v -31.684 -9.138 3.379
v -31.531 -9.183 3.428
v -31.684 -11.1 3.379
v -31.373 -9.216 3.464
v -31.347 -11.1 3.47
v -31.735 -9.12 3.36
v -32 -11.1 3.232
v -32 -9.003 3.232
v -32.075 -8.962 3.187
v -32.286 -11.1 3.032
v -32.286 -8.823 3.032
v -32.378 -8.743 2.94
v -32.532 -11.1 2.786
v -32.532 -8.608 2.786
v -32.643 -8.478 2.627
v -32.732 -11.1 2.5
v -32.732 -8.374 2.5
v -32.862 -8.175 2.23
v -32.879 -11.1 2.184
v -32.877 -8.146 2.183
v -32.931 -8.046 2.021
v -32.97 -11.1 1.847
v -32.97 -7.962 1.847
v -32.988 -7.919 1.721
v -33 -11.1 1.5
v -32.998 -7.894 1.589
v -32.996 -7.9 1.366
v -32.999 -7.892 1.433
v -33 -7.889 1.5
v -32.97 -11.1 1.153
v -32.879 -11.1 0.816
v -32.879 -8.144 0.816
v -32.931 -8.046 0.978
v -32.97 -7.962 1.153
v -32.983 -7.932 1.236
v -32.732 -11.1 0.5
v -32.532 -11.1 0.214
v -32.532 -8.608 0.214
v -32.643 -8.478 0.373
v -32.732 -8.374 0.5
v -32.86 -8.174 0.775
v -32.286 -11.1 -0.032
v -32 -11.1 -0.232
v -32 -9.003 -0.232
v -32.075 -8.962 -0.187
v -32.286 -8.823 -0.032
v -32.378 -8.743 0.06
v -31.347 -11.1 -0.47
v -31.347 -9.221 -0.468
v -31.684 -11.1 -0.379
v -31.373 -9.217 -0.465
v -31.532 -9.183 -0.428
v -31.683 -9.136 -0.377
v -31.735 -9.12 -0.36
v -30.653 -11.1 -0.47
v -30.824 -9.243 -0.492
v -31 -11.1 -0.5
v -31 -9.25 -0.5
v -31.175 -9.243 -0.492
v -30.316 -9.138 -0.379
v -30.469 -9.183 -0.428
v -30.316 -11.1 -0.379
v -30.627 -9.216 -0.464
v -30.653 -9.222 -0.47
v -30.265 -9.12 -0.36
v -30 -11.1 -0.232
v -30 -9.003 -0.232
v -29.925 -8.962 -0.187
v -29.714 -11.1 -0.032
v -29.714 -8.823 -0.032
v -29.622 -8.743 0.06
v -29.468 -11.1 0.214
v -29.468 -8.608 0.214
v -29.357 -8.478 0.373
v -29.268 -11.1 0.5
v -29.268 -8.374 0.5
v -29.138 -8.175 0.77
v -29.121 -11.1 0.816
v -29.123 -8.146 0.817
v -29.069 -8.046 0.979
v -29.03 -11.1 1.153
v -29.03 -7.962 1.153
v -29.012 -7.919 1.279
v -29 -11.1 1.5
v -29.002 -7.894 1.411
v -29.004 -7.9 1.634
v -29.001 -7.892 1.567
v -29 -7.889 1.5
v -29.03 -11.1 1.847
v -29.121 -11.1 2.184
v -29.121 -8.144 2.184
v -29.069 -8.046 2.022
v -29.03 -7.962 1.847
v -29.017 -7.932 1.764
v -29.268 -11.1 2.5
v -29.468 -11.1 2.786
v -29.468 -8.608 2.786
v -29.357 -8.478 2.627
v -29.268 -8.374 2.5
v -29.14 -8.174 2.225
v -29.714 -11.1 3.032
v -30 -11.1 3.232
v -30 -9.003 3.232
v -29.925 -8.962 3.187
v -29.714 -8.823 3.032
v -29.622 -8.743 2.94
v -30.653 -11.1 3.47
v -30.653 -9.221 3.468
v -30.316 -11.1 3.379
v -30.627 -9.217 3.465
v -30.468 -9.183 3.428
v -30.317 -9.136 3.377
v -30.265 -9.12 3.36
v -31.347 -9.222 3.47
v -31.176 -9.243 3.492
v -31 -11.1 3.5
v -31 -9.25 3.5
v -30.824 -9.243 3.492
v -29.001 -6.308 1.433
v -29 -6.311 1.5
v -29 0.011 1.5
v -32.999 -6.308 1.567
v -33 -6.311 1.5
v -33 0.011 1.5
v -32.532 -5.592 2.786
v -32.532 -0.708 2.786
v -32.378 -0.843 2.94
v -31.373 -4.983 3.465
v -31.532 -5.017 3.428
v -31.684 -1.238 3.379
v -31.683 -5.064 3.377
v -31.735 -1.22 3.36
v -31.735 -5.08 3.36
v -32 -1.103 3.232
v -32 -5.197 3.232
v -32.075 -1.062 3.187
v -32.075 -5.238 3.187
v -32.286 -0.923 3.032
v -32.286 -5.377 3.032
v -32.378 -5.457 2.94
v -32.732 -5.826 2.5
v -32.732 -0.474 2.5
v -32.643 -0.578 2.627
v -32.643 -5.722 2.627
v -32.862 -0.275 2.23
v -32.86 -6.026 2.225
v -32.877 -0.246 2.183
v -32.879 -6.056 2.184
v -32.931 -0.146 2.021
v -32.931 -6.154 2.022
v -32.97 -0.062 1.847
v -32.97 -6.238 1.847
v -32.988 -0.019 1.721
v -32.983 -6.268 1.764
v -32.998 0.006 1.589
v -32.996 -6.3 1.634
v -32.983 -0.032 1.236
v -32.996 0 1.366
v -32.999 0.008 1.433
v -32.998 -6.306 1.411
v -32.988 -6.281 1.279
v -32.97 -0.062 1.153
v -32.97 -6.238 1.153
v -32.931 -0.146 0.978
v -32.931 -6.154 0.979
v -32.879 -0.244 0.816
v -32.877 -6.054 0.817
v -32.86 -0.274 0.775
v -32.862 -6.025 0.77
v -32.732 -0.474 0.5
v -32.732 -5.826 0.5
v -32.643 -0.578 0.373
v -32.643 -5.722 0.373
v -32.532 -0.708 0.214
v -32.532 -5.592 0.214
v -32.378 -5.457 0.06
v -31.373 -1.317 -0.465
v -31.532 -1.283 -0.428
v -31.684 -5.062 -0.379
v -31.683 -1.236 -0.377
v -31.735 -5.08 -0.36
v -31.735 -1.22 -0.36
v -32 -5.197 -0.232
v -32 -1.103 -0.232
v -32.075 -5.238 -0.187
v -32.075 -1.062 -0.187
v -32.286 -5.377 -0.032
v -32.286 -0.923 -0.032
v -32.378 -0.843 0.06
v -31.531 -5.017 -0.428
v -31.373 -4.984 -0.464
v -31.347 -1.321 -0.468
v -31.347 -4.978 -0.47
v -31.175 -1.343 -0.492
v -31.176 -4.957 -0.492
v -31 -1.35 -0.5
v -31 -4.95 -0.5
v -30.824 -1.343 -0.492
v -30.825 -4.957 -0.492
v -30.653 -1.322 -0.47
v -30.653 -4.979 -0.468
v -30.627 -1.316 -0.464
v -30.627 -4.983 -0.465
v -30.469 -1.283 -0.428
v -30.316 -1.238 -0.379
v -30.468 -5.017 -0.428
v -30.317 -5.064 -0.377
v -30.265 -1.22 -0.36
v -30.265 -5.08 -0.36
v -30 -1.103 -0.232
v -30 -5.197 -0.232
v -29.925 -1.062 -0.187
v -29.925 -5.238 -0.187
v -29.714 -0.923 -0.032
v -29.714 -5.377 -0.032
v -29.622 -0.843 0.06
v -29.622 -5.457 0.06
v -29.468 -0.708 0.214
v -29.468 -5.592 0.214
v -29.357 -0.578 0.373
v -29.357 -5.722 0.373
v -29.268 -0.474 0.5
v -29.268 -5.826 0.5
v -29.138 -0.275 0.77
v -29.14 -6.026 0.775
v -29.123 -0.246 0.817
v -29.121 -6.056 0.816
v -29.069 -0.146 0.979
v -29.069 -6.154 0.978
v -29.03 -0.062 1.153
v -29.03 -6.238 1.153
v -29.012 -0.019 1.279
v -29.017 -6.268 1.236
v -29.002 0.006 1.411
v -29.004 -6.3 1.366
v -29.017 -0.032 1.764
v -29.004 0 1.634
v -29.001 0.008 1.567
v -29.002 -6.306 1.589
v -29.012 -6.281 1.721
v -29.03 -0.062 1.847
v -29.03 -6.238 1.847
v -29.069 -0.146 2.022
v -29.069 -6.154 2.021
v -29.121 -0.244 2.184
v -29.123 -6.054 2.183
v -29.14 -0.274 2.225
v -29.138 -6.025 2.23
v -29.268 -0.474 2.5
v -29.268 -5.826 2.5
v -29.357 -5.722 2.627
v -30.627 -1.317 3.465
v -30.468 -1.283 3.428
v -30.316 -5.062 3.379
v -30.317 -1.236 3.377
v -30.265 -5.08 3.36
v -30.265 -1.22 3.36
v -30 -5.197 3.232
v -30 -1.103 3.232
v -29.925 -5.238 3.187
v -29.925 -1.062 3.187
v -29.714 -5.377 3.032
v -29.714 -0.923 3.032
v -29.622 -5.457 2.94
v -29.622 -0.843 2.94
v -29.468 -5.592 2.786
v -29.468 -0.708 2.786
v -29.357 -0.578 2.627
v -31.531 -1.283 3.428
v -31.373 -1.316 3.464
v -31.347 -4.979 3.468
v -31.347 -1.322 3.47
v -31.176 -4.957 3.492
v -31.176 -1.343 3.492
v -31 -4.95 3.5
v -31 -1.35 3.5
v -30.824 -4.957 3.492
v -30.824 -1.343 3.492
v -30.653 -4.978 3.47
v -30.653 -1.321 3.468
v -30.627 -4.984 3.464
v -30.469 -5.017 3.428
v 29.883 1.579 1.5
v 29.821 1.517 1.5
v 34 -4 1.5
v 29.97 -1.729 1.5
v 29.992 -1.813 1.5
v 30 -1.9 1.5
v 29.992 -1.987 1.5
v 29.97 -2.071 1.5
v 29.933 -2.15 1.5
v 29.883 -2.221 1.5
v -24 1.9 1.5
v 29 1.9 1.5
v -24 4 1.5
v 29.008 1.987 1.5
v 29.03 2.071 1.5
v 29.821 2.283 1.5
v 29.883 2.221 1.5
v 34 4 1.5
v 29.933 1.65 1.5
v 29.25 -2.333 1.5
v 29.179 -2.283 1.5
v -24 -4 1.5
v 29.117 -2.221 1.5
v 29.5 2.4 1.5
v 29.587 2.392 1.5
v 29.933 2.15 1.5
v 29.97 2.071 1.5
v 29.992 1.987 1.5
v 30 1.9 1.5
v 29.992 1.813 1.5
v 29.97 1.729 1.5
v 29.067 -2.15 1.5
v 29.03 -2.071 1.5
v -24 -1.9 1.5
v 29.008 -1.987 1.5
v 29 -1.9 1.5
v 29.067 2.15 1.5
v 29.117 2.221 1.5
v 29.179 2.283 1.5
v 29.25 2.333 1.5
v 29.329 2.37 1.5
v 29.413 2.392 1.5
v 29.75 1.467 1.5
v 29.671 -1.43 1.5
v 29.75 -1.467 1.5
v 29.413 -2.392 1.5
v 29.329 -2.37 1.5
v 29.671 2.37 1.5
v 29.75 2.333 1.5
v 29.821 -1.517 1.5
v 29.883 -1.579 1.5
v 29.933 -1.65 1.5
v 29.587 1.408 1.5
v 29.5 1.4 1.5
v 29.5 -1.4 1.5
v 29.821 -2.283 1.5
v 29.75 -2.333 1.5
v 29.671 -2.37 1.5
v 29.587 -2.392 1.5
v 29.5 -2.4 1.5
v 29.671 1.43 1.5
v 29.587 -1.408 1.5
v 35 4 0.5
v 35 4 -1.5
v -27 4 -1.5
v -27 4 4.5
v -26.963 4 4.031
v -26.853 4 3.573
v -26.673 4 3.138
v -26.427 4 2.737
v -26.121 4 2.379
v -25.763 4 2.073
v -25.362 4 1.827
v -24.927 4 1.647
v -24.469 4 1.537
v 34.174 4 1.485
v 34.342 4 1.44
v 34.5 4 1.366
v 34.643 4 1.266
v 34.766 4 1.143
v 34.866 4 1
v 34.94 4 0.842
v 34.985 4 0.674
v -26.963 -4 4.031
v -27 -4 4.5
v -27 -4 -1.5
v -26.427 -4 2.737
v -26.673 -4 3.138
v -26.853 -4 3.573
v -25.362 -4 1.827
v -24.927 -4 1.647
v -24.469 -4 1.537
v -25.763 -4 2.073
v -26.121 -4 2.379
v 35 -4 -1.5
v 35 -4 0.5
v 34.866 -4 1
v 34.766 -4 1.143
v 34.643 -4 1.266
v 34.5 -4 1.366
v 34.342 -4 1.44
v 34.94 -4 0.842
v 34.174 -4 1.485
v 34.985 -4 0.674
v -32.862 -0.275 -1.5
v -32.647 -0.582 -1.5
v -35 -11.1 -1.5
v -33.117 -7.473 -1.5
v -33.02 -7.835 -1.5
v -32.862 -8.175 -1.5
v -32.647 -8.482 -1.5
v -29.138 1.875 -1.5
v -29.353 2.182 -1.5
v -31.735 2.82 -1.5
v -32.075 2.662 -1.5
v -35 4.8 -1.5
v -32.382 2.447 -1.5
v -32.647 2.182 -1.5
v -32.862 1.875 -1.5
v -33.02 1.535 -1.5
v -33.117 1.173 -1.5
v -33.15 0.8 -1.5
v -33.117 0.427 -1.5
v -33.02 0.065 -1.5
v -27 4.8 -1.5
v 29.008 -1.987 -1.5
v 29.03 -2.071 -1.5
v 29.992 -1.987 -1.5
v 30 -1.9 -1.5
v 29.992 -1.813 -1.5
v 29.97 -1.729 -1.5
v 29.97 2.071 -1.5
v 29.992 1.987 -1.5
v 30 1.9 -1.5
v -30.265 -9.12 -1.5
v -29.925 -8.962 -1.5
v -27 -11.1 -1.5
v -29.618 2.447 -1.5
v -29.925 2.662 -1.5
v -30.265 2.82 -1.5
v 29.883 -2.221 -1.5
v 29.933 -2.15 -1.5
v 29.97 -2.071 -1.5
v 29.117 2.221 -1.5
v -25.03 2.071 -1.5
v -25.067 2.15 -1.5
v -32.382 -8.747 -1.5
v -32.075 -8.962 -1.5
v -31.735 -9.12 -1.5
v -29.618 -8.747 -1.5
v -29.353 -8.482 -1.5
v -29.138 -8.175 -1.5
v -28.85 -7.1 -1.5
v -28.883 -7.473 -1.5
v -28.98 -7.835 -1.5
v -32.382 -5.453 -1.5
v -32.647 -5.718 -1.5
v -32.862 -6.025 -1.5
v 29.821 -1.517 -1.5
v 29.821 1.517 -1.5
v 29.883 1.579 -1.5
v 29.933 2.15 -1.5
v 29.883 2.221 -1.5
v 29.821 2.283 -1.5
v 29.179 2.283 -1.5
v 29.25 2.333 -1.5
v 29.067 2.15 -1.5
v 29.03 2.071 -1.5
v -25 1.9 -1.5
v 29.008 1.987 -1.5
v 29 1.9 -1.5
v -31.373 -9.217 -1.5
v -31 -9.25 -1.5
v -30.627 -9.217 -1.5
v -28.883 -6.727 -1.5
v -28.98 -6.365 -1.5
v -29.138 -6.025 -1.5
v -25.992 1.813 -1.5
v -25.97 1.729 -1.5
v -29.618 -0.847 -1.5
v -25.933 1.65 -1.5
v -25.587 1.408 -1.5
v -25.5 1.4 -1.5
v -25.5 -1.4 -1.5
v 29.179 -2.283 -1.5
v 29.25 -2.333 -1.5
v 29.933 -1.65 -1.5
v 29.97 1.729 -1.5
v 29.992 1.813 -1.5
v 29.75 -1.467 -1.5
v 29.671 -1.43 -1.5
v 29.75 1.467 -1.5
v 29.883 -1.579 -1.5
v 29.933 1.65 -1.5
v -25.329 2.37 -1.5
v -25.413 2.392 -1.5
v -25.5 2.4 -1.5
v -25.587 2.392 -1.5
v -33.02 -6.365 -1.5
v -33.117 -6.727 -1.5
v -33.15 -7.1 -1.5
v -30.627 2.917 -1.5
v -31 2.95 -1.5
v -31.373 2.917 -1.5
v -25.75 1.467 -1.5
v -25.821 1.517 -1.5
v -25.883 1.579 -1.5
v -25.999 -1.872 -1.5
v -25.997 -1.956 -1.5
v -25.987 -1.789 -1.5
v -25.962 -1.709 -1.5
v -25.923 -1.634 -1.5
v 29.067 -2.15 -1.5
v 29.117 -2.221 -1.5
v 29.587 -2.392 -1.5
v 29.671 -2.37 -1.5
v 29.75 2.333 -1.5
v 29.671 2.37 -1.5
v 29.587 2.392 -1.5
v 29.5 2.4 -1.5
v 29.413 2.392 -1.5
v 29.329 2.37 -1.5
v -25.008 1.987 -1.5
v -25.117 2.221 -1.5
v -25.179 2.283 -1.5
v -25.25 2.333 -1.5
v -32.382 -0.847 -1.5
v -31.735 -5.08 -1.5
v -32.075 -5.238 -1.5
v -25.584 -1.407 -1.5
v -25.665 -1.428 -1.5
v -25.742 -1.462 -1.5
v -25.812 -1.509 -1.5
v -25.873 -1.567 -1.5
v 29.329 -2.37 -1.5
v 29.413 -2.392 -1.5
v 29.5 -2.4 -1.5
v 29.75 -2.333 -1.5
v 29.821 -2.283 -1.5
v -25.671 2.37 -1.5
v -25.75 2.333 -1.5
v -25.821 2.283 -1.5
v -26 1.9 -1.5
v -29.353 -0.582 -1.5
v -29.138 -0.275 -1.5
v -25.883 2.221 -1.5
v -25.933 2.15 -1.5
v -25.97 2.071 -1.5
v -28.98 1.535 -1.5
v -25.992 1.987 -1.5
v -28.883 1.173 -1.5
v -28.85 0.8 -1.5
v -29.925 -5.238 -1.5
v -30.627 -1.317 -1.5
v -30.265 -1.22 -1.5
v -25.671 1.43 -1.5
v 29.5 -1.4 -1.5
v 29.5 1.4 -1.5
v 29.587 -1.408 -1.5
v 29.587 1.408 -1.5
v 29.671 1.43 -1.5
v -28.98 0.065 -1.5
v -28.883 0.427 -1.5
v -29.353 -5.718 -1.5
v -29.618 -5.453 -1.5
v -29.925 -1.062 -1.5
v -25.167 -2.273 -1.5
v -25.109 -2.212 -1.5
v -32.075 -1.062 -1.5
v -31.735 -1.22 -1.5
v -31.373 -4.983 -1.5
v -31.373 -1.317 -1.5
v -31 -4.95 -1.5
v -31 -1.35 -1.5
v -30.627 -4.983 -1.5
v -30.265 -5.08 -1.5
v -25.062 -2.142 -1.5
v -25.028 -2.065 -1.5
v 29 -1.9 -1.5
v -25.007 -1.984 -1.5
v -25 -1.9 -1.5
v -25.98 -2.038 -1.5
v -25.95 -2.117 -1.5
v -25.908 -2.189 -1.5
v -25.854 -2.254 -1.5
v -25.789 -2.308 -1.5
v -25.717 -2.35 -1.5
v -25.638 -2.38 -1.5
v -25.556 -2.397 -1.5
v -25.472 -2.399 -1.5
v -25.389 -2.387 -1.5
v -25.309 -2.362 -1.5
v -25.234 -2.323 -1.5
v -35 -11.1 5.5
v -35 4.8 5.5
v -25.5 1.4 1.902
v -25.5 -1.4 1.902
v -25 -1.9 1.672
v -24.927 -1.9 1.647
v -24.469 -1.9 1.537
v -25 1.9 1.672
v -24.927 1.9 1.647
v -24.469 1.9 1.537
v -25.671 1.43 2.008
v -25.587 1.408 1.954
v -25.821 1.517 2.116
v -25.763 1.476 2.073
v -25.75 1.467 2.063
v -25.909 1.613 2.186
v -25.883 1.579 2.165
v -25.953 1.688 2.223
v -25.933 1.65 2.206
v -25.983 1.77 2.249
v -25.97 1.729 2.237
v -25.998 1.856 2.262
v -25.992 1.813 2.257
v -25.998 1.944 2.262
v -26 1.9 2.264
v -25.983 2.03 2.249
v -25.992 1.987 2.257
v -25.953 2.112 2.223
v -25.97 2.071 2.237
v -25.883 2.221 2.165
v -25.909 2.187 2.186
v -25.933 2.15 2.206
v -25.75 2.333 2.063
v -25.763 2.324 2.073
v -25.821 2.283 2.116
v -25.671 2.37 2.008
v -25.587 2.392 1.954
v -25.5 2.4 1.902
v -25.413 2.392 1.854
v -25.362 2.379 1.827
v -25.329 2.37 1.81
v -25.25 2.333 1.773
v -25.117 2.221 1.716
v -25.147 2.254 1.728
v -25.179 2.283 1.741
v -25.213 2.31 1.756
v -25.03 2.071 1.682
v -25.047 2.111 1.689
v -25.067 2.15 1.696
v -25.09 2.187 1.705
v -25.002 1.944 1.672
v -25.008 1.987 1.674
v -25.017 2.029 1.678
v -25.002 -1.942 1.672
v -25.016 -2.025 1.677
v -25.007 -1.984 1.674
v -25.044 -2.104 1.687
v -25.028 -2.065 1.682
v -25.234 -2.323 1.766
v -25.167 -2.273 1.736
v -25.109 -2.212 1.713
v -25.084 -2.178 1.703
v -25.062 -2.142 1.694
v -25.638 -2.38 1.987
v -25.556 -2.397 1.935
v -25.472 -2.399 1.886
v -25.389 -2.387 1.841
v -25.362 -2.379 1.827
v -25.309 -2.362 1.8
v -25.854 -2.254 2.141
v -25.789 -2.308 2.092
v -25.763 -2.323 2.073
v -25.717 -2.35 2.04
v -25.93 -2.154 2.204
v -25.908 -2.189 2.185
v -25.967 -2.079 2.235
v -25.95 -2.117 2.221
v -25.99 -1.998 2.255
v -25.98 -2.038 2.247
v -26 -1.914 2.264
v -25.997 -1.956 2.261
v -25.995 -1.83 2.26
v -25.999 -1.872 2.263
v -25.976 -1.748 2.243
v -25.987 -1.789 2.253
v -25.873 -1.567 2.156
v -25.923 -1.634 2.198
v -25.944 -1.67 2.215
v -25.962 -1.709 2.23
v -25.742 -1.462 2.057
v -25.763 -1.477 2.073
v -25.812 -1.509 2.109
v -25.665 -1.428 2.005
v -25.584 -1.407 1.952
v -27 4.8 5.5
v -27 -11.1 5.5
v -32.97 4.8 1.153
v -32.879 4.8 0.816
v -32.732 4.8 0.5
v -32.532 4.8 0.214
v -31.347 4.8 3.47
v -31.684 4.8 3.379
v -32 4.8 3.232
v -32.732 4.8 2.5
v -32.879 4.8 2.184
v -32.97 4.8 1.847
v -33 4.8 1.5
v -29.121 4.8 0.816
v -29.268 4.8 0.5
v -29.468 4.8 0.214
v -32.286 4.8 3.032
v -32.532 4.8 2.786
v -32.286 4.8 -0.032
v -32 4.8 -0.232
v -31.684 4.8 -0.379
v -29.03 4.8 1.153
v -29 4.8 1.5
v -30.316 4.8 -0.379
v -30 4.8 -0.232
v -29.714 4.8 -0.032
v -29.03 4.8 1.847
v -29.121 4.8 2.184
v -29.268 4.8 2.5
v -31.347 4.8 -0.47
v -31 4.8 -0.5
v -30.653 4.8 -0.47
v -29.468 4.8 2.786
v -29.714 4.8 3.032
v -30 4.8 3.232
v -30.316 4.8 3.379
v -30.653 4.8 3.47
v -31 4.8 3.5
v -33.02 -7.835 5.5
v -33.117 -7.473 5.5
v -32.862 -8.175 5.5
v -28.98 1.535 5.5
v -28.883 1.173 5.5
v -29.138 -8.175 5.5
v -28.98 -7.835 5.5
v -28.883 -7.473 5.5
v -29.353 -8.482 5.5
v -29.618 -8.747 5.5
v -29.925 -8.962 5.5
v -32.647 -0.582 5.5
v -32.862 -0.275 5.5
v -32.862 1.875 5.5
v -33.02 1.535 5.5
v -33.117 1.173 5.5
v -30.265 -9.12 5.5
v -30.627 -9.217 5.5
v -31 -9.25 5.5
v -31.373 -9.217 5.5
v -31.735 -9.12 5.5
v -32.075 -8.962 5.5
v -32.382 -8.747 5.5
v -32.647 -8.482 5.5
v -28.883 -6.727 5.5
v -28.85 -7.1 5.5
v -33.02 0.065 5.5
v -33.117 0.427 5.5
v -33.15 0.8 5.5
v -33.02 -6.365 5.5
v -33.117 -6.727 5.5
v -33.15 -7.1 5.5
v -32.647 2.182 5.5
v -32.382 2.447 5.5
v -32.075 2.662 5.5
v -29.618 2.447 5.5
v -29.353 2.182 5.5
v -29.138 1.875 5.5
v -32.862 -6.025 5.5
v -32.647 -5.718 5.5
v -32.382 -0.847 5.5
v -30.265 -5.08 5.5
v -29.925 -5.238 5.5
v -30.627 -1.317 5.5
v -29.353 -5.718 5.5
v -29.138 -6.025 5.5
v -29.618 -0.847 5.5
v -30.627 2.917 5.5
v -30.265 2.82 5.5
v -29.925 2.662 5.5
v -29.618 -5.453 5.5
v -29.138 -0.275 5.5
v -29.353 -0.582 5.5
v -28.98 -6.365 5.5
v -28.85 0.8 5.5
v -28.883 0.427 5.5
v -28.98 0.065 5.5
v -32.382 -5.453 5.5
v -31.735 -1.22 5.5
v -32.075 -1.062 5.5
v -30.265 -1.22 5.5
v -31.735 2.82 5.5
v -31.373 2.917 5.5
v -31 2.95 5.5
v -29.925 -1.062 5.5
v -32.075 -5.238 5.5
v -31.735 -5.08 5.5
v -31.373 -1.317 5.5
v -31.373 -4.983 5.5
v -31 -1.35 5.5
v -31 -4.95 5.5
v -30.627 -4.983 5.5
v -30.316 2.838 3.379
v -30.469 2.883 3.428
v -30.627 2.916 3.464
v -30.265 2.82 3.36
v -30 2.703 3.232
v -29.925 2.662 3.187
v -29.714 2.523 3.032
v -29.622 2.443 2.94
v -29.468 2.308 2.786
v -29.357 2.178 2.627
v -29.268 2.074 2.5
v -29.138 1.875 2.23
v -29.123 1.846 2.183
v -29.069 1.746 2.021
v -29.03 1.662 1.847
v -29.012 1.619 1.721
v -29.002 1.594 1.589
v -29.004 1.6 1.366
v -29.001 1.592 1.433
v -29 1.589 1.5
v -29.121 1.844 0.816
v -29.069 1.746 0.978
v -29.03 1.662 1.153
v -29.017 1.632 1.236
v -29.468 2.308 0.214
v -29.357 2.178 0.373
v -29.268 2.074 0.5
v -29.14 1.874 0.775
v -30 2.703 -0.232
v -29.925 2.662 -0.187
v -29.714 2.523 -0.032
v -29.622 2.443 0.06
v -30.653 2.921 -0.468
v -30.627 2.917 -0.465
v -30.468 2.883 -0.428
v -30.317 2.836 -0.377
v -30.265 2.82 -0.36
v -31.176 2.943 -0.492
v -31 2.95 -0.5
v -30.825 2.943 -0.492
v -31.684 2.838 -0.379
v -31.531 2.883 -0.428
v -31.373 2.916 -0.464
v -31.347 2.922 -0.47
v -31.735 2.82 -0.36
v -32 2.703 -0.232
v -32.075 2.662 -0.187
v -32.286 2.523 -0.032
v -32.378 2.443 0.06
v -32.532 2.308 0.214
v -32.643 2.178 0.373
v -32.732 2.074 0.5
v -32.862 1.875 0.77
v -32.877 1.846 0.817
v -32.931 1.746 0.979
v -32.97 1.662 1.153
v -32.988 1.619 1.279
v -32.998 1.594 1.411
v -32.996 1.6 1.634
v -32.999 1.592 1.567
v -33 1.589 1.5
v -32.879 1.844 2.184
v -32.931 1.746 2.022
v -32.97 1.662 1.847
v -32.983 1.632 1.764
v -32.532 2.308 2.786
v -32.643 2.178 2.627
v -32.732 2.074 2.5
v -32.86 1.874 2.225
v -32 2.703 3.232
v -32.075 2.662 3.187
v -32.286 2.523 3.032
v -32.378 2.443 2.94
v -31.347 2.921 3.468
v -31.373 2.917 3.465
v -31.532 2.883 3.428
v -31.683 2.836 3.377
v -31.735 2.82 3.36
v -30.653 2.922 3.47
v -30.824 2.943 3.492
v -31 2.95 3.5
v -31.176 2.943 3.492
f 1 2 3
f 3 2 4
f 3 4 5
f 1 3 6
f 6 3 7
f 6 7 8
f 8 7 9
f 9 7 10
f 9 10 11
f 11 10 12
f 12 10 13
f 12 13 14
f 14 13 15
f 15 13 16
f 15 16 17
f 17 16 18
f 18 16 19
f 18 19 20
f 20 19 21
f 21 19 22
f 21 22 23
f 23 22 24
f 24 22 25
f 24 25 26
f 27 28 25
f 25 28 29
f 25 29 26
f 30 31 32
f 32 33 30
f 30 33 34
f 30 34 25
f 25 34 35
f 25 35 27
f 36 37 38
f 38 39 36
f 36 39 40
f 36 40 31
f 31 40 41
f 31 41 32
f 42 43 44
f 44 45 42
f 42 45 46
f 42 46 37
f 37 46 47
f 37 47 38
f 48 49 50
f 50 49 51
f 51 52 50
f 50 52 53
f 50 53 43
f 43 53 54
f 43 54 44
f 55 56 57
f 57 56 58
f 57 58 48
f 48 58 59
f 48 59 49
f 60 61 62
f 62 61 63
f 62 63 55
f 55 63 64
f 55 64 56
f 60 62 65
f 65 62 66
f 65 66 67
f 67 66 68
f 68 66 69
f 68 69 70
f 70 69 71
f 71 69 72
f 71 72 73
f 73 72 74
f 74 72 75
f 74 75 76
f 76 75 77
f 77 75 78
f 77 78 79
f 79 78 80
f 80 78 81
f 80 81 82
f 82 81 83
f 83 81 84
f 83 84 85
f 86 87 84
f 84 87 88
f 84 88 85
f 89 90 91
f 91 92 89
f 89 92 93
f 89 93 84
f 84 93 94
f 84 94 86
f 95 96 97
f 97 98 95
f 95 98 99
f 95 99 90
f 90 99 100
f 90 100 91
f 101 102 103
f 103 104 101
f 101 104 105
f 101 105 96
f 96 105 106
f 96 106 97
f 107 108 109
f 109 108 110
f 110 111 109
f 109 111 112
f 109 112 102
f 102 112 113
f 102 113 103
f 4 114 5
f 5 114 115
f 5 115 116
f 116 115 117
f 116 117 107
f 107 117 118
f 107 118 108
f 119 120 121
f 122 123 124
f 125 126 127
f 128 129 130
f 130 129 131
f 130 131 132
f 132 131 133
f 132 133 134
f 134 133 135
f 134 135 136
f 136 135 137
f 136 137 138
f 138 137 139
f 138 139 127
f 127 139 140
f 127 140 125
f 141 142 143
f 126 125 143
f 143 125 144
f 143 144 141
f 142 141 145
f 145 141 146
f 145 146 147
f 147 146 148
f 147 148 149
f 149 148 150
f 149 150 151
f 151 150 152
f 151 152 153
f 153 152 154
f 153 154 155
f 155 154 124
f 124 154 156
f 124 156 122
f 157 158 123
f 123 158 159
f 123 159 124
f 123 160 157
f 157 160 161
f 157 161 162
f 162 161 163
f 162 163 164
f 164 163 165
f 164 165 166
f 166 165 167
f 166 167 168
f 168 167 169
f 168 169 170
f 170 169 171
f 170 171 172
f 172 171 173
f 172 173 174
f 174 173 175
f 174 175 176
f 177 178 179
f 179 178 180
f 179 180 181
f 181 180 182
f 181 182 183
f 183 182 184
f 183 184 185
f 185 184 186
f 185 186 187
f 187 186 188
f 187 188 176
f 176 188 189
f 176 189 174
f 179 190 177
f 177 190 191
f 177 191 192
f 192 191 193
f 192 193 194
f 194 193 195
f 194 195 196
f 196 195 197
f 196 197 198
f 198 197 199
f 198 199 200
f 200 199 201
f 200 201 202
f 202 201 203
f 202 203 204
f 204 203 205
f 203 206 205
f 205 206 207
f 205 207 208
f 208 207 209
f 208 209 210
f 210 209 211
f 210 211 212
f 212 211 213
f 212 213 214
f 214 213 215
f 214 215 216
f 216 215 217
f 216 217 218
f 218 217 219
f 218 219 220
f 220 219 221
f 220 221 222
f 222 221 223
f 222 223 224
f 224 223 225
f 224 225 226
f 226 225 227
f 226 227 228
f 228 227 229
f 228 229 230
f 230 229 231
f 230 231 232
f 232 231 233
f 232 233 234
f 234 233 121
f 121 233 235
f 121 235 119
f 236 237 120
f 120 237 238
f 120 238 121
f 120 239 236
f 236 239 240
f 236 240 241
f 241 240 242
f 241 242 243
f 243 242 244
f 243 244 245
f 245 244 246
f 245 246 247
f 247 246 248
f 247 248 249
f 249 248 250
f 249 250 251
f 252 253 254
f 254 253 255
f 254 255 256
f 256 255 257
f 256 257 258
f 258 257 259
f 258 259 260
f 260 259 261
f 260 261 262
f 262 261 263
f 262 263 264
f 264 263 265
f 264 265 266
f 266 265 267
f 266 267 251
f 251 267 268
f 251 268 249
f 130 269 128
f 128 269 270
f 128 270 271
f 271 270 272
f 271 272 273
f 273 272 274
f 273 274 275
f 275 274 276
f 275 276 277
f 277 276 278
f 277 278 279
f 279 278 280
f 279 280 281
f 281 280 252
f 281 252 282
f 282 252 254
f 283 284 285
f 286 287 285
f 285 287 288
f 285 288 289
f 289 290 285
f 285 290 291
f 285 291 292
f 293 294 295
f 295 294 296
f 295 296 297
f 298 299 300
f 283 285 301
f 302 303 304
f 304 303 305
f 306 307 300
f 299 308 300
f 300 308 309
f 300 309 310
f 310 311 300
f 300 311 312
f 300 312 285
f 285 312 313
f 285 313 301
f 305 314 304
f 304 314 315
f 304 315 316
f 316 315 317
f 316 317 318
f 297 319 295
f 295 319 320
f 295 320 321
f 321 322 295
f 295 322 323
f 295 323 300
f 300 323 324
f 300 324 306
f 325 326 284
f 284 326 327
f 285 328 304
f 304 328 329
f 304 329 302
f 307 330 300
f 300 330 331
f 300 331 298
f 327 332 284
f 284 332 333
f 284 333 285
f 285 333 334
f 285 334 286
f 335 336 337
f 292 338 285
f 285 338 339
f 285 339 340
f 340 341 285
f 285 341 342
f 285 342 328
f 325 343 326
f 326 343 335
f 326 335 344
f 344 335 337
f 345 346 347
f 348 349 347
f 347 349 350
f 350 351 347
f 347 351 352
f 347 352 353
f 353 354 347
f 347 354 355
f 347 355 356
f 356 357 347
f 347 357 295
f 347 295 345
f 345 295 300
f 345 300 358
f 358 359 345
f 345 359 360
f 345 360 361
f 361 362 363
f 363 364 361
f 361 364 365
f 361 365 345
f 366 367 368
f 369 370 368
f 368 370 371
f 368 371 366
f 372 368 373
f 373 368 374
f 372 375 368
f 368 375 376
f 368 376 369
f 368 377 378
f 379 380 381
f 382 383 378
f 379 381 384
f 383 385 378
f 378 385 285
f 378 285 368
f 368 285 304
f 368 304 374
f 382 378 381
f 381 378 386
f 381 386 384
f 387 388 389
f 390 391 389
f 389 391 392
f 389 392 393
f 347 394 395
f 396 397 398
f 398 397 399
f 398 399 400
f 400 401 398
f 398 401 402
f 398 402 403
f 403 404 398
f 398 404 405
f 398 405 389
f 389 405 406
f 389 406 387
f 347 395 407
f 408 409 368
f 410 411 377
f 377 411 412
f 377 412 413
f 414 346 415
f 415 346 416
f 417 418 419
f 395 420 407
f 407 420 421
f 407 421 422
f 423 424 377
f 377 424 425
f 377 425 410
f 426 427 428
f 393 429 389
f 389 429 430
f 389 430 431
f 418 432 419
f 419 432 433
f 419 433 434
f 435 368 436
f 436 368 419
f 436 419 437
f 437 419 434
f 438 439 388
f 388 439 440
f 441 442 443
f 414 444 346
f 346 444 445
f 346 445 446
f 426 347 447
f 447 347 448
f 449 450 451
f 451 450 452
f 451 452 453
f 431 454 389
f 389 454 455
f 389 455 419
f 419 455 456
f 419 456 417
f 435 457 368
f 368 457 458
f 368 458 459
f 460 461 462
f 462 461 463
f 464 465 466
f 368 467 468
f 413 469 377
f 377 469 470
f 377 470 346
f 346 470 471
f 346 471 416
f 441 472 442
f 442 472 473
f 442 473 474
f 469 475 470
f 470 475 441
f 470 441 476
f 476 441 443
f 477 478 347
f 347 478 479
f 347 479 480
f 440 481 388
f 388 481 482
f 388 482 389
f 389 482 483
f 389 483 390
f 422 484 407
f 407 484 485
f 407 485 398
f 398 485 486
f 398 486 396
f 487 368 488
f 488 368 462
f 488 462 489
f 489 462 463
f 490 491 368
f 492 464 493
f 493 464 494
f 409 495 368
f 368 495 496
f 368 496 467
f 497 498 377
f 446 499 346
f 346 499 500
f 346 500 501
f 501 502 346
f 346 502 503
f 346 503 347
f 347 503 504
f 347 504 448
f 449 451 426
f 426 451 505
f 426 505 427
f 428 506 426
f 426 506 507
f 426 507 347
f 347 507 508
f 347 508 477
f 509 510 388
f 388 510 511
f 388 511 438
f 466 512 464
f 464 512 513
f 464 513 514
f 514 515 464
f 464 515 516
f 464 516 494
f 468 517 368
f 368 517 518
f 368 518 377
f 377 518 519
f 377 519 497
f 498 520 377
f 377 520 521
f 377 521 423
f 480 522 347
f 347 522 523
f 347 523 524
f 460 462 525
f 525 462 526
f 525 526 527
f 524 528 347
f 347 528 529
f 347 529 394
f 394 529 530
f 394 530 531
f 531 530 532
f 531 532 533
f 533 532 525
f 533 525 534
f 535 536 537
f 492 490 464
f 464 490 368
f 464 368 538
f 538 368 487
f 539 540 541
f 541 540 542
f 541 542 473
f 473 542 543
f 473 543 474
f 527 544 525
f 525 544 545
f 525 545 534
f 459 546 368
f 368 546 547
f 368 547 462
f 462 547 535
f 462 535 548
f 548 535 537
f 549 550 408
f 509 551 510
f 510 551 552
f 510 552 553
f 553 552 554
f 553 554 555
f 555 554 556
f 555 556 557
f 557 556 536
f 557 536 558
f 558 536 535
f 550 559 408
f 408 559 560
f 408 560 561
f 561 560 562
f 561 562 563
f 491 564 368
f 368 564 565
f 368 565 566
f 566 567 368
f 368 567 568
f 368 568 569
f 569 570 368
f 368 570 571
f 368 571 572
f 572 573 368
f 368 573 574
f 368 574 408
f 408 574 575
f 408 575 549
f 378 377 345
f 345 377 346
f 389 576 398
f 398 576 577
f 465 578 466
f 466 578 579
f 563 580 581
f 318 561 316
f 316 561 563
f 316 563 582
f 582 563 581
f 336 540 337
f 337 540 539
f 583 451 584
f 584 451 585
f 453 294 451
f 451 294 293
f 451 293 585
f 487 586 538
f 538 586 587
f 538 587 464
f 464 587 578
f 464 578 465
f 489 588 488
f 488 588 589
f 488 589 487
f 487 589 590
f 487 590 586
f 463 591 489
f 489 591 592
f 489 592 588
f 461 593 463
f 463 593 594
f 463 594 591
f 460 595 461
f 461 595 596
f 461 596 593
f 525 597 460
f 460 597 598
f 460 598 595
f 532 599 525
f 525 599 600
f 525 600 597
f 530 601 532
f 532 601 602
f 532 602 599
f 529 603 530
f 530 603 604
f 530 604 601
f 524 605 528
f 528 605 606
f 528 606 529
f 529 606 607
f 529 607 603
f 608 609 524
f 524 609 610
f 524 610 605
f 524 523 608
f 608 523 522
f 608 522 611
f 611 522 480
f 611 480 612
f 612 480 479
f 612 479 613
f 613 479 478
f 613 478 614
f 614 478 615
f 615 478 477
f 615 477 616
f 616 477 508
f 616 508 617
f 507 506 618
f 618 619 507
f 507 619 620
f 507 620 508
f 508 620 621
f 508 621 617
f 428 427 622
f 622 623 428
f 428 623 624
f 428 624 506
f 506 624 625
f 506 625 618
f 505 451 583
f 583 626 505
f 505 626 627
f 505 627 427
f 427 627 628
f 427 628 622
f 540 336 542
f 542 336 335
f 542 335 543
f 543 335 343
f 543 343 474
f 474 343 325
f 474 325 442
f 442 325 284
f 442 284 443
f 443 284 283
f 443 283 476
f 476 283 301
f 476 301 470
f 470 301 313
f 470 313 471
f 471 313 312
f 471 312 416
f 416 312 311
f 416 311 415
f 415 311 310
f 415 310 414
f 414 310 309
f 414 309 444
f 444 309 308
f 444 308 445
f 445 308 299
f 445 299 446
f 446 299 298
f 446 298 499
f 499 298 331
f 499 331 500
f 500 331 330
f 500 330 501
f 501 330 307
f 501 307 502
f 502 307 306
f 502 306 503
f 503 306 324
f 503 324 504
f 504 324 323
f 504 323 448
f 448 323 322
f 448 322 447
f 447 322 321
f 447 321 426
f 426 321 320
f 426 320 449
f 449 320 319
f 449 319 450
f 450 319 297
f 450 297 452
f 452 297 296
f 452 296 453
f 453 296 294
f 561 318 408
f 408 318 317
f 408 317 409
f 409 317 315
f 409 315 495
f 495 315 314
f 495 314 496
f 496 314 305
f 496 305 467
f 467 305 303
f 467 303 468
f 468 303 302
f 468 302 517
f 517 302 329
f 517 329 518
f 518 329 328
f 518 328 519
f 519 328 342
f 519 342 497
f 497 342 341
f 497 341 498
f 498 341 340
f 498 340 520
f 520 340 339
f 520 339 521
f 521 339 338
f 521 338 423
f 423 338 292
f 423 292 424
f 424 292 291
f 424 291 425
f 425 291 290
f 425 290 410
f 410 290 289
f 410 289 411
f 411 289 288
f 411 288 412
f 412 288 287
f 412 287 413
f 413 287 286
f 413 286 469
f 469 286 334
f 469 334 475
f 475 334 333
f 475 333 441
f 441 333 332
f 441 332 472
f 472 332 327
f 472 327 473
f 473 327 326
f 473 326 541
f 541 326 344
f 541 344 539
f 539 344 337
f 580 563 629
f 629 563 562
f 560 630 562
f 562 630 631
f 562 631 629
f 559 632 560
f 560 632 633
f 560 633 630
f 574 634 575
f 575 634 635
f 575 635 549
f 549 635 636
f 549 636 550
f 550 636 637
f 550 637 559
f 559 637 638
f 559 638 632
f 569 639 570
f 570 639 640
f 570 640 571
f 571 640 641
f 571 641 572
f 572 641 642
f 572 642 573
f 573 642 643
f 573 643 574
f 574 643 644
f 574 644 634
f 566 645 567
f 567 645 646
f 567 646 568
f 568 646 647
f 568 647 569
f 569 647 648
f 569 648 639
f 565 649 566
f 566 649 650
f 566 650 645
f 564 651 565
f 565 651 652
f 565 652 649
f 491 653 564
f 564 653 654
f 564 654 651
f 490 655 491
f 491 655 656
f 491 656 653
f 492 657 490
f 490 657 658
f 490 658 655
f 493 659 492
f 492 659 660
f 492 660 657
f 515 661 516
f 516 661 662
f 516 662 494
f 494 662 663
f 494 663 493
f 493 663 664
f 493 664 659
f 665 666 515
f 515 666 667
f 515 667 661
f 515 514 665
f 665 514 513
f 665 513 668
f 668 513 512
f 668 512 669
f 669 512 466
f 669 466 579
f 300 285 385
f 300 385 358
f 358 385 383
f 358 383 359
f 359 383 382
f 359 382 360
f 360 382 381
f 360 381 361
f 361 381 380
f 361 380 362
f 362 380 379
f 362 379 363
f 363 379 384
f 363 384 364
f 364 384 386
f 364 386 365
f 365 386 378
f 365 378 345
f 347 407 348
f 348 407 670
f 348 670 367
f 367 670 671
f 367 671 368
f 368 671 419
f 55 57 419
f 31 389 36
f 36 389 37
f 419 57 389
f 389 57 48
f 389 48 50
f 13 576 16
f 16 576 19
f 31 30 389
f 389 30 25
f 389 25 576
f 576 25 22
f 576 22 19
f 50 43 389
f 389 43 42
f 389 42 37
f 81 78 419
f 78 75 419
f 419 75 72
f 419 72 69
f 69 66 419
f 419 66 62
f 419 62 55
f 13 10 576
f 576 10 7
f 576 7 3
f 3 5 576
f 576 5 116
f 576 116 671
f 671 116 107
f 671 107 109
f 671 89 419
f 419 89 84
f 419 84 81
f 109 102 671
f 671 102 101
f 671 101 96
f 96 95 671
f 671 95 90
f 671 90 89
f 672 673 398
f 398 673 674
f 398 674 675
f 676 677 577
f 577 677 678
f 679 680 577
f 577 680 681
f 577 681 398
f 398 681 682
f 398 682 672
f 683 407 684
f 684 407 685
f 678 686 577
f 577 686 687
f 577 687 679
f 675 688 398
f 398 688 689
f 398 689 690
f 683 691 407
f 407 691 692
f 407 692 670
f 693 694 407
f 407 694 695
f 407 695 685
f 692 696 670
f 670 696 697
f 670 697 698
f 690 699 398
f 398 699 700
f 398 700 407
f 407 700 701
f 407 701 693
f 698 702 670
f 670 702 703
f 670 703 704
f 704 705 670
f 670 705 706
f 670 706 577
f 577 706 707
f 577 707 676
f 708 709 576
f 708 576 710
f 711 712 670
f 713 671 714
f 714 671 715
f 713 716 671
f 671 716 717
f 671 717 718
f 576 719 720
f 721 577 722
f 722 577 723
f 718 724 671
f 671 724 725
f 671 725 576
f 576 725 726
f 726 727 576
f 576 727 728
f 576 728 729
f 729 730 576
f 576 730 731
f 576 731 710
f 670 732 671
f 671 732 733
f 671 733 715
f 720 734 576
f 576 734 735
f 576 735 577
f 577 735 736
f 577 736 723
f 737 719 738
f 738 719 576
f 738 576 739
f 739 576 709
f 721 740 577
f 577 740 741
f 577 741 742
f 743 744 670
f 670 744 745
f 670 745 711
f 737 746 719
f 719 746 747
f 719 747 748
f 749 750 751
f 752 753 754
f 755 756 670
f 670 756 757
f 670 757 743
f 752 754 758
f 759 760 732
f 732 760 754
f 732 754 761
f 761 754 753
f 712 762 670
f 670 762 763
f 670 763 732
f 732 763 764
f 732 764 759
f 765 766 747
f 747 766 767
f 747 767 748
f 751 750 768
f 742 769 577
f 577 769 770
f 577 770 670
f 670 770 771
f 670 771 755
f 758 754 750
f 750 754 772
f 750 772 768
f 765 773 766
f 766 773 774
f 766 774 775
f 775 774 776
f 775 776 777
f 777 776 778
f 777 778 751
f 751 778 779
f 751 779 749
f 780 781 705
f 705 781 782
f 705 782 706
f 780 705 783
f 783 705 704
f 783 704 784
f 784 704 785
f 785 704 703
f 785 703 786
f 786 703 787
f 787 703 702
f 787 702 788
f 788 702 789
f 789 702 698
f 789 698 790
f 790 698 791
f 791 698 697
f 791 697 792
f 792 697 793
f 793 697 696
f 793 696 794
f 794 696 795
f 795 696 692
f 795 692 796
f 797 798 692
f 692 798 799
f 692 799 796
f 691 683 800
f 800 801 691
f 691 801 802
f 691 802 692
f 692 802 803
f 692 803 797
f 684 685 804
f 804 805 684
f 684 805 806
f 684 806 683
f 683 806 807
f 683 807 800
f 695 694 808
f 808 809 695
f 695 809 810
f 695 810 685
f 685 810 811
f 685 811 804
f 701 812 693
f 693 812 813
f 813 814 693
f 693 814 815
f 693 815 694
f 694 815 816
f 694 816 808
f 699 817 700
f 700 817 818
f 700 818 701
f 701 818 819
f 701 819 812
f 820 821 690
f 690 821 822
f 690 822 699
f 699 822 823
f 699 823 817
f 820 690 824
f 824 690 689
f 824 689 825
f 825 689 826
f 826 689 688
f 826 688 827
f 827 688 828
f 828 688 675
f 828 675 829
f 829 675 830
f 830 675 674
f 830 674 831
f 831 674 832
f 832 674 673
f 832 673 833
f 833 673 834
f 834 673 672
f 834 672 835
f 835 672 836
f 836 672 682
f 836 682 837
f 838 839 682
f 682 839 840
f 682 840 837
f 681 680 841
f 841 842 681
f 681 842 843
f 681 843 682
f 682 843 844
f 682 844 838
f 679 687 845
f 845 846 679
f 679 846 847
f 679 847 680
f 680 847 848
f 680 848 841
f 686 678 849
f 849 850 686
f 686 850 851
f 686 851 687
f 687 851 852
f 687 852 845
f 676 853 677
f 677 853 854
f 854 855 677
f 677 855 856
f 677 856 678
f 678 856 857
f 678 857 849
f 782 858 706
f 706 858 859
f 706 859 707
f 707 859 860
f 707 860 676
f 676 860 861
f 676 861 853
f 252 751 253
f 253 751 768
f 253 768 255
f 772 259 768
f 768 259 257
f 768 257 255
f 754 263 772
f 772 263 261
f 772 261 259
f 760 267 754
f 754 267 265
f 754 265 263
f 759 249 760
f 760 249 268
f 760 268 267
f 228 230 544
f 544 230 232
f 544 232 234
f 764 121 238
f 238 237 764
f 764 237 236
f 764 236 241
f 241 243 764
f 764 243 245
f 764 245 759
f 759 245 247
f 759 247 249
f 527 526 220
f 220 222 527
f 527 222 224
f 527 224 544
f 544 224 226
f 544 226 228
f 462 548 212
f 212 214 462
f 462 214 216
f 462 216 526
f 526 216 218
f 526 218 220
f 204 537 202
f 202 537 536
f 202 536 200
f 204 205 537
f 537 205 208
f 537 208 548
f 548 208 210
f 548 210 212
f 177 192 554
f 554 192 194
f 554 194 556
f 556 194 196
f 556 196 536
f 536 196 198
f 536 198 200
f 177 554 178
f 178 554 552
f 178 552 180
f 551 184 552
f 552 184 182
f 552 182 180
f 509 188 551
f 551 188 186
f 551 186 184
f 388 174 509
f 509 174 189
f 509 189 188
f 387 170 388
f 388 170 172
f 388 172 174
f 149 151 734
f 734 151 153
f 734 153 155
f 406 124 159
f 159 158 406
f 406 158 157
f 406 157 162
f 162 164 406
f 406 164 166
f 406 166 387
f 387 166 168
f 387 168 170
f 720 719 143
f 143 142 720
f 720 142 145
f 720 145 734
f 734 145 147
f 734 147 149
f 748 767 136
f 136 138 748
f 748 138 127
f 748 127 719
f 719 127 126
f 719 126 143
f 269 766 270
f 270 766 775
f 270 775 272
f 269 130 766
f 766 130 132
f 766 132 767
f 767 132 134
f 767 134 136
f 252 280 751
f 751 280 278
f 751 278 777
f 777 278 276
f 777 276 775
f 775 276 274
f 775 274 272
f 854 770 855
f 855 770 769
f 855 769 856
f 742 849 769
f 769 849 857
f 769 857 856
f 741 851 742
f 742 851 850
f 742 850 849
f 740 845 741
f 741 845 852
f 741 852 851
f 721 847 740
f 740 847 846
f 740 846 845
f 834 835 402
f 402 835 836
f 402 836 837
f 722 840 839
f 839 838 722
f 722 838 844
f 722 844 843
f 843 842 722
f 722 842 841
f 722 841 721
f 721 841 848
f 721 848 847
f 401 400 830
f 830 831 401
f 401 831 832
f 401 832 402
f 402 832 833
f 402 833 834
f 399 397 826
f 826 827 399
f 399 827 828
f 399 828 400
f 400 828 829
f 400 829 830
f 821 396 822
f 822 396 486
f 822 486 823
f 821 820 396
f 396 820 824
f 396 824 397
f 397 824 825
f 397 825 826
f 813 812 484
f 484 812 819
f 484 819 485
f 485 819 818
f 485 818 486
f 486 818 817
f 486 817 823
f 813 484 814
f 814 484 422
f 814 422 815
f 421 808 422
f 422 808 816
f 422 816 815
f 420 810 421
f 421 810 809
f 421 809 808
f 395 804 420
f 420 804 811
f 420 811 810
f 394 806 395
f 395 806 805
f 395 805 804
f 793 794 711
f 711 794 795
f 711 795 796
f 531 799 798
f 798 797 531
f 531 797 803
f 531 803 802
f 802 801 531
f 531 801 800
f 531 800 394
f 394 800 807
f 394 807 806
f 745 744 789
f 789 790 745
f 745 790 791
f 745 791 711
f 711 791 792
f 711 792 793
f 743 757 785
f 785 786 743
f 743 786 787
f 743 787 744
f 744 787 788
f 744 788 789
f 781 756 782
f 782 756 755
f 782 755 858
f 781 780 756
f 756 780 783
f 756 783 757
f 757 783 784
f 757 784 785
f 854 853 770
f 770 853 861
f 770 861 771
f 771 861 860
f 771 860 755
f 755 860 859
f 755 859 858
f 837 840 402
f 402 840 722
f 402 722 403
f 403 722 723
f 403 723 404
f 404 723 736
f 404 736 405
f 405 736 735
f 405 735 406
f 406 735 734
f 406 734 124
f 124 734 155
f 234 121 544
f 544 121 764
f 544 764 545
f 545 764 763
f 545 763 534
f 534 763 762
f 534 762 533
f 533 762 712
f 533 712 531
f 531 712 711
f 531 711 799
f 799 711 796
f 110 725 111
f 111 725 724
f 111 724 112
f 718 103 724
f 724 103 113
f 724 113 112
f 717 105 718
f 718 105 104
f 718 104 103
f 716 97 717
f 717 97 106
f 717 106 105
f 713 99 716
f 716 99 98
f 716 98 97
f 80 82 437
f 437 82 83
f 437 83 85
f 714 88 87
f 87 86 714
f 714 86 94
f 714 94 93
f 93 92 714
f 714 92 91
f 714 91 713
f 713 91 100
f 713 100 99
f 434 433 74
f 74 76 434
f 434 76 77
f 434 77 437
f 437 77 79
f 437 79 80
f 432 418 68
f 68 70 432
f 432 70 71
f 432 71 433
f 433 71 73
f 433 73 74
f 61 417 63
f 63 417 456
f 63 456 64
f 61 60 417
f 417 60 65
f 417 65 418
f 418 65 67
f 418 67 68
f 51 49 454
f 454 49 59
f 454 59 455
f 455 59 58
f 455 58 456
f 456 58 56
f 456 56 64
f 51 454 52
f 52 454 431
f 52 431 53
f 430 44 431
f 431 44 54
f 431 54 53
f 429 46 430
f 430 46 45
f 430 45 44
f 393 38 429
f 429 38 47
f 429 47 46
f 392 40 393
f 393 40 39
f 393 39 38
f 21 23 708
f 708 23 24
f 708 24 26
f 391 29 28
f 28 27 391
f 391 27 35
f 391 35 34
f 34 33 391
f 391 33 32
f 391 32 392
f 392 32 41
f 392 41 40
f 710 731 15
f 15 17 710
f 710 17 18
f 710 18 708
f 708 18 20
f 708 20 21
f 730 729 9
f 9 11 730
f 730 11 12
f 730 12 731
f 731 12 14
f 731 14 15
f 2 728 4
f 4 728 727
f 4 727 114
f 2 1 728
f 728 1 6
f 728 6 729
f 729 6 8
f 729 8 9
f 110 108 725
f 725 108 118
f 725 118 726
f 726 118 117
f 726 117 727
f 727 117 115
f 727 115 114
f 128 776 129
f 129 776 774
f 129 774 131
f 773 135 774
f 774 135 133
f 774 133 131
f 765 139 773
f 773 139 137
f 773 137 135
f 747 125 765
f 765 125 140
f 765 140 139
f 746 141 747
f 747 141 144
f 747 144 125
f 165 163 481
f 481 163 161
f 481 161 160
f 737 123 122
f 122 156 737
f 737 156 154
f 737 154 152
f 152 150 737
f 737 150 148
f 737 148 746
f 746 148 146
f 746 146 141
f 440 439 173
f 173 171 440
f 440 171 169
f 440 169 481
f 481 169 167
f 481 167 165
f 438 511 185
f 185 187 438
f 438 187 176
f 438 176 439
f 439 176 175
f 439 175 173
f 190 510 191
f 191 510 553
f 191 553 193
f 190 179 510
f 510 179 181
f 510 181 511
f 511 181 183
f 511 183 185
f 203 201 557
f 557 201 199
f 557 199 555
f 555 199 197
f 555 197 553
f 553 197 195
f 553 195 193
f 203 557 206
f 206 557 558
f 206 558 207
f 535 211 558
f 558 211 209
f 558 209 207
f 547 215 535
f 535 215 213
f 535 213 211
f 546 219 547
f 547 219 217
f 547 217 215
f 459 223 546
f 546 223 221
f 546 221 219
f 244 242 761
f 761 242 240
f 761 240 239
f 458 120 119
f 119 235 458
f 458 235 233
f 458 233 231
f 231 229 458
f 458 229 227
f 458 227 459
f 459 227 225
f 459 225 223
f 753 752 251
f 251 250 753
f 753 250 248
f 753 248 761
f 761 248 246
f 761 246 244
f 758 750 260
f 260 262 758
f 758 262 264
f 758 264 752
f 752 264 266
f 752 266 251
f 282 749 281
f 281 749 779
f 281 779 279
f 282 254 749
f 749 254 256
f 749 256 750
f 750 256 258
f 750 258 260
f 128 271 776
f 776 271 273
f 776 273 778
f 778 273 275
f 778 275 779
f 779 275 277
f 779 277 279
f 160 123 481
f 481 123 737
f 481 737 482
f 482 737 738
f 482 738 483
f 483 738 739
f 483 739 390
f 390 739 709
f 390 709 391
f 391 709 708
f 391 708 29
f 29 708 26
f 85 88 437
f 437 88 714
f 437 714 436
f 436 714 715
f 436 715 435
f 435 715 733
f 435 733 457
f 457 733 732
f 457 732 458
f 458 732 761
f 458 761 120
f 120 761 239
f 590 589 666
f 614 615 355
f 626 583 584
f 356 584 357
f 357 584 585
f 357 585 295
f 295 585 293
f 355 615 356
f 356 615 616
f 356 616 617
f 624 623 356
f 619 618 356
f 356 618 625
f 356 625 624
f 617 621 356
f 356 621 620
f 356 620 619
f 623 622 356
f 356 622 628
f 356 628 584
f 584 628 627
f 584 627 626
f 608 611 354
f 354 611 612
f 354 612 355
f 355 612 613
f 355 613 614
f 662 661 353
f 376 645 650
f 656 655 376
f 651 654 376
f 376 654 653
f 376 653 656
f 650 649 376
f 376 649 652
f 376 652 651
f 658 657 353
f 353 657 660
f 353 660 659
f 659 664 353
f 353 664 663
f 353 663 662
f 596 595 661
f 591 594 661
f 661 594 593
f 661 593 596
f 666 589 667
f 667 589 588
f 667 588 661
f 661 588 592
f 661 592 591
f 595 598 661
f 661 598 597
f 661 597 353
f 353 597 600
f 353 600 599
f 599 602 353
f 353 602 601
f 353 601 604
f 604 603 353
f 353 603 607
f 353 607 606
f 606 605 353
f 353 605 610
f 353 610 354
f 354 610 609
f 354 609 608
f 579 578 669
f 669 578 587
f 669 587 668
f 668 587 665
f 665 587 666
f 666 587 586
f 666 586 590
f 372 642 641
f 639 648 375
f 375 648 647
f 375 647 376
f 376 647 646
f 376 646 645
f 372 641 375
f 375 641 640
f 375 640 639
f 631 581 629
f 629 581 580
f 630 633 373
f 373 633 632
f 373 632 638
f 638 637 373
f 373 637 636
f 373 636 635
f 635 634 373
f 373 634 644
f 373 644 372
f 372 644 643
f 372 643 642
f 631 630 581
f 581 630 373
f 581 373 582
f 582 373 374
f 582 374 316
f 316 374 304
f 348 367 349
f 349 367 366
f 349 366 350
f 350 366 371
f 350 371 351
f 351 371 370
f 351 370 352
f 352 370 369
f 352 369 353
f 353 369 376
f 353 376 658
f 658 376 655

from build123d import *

# Parameters (mm, degrees)
SKIZZE1_W                    = 70
SKIZZE1_H                    = 8
SKIZZE1_W_2                  = 55
SKIZZE1_H_2                  = 3.8
BODY_DEPTH                   = 1.5
LOCHUNGSSKIZZE_R             = 0.5
RAHMENLOCHUNGEN_DEPTH        = 36.355339059
VERRUNDUNG1_R                = 1
SCHNABEL_DEPTH               = 3
SCHNABELAUFSATZSKIZZE_W      = 8
SCHNABELAUFSATZSKIZZE_H      = 15.9
SCHNABELAUFSATZ_DEPTH        = 1
LOCHUNGHORIZONTAL_DEPTH      = 39.83374821
LOCHUNGHORIZONTAL_DEPTH_BACK = 39.83374821
SKIZZE4_R                    = 2
SKIZZE5_R                    = 2.15
LOCHUNG2_DEPTH               = 38.379272331
VERRUNDUNG4_R                = 3


with BuildPart() as part:
    # Skizze1 → Body (new, symmetric)
    with BuildSketch(Plane.XY):
        Rectangle(SKIZZE1_W, SKIZZE1_H)
        with Locations((2, 0)):
            Rectangle(SKIZZE1_W_2, SKIZZE1_H_2, mode=Mode.SUBTRACT)
    extrude(amount=BODY_DEPTH, both=True)

    # Lochungsskizze → RahmenLochungen (cut, through all)
    with BuildSketch(Plane.XY.offset(1.5)):
        with Locations((-25.5, 1.9)):
            Circle(LOCHUNGSSKIZZE_R)
        with Locations((-25.5, -1.9)):
            Circle(LOCHUNGSSKIZZE_R)
        with Locations((29.5, -1.9)):
            Circle(LOCHUNGSSKIZZE_R)
        with Locations((29.5, 1.9)):
            Circle(LOCHUNGSSKIZZE_R)
    extrude(amount=-RAHMENLOCHUNGEN_DEPTH, mode=Mode.SUBTRACT)

    # Verrundung1
    verrundung1_edges = [part.edges().sort_by_distance(p)[0] for p in [
        (35, 0, 1.5),
    ]]
    fillet(verrundung1_edges, radius=VERRUNDUNG1_R)

    # Skizze2 → Schnabel (add, symmetric)
    with BuildSketch(Plane.XY.offset(1.5)):
        Polygon((-35, 0), (-35, -11.1), (-27, -11.1), (-27, 0), (-27, 4.8), (-35, 4.8), align=None)
    extrude(amount=SCHNABEL_DEPTH, both=True)

    # Schnabelaufsatzskizze → Schnabelaufsatz (add)
    with BuildSketch(Plane.XY.offset(4.5)):
        with Locations((-31, -3.15)):
            Rectangle(SCHNABELAUFSATZSKIZZE_W, SCHNABELAUFSATZSKIZZE_H)
    extrude(amount=SCHNABELAUFSATZ_DEPTH)

    # Skizze4 → lochungHorizontal (cut, two sides: drawn at the far end of the back side and taken through both)
    with BuildSketch(Plane(origin=(0, 4.8, 0), x_dir=(1, 0, 0), z_dir=(0, 1, 0)).offset(-LOCHUNGHORIZONTAL_DEPTH_BACK)):
        with Locations(Location((-31, -1.5, 0), (0, 0, 270))):
            Circle(SKIZZE4_R)
    extrude(amount=LOCHUNGHORIZONTAL_DEPTH + LOCHUNGHORIZONTAL_DEPTH_BACK, mode=Mode.SUBTRACT)

    # Skizze5 → lochung2 (cut, through all)
    with BuildSketch(Plane.XY.offset(5.5)):
        with Locations((-31, 0.8)):
            Circle(SKIZZE5_R)
        with Locations((-31, -7.1)):
            Circle(SKIZZE5_R)
    extrude(amount=-LOCHUNG2_DEPTH, mode=Mode.SUBTRACT)

    # Verrundung4
    # the kernel refuses this fillet: 3 mm, written as the material it adds along each edge
    with BuildSketch(Plane(origin=(-27, 4, 1.5), x_dir=(0, 0, 1), z_dir=(0, -1, 0))) as verrundung4_piece_1_section:
        with BuildLine():
            CenterArc((VERRUNDUNG4_R, -VERRUNDUNG4_R), VERRUNDUNG4_R, 90, 90)
            Line((0, -VERRUNDUNG4_R), (0, 0))
            Line((0, 0), (VERRUNDUNG4_R, 0))
        make_face()
    verrundung4_piece_1 = extrude(amount=8, mode=Mode.PRIVATE)
    verrundung4_piece_1 = split(verrundung4_piece_1, bisect_by=Plane(origin=(-25.5, 2.974318448, 2.280258201), z_dir=(-1, 0, 0)), keep=Keep.TOP, mode=Mode.PRIVATE)
    verrundung4_piece_1 = verrundung4_piece_1 - Plane(origin=(-25.5, 1.9, 2.280258201), x_dir=(1, 0, 0), z_dir=(0, 0, 1)) * Cylinder(0.5, 28, mode=Mode.PRIVATE)
    verrundung4_piece_1 = split(verrundung4_piece_1, bisect_by=Plane(origin=(-26.529126239, 1.9, 2.280258201), z_dir=(0, 1, 0)), keep=Keep.TOP, mode=Mode.PRIVATE)
    with BuildSketch(Plane(origin=(-27, 4, 1.5), x_dir=(0, 0, 1), z_dir=(0, -1, 0))) as verrundung4_piece_2_section:
        with BuildLine():
            CenterArc((VERRUNDUNG4_R, -VERRUNDUNG4_R), VERRUNDUNG4_R, 90, 90)
            Line((0, -VERRUNDUNG4_R), (0, 0))
            Line((0, 0), (VERRUNDUNG4_R, 0))
        make_face()
    verrundung4_piece_2 = extrude(amount=8, mode=Mode.PRIVATE)
    verrundung4_piece_2 = split(verrundung4_piece_2, bisect_by=Plane(origin=(-25.5, 3.059225234, 1.565370455), z_dir=(1, 0, 0)), keep=Keep.TOP, mode=Mode.PRIVATE)
    verrundung4_piece_2 = verrundung4_piece_2 - Plane(origin=(-25.5, 1.9, 1.565370455), x_dir=(1, 0, 0), z_dir=(0, 0, 1)) * Cylinder(0.5, 28, mode=Mode.PRIVATE)
    verrundung4_piece_2 = split(verrundung4_piece_2, bisect_by=Plane(origin=(-24.970725973, 1.9, 1.565370455), z_dir=(0, 1, 0)), keep=Keep.TOP, mode=Mode.PRIVATE)
    with BuildSketch(Plane(origin=(-27, 4, 1.5), x_dir=(0, 0, 1), z_dir=(0, -1, 0))) as verrundung4_piece_3_section:
        with BuildLine():
            CenterArc((VERRUNDUNG4_R, -VERRUNDUNG4_R), VERRUNDUNG4_R, 90, 90)
            Line((0, -VERRUNDUNG4_R), (0, 0))
            Line((0, 0), (VERRUNDUNG4_R, 0))
        make_face()
    verrundung4_piece_3 = extrude(amount=8, mode=Mode.PRIVATE)
    verrundung4_piece_3 = split(verrundung4_piece_3, bisect_by=Plane(origin=(-25.5, -6.8e-08, 2.281876588), z_dir=(-1, 0, 0)), keep=Keep.TOP, mode=Mode.PRIVATE)
    verrundung4_piece_3 = verrundung4_piece_3 - Plane(origin=(-25.5, -1.9, 2.281876588), x_dir=(1, 0, 0), z_dir=(0, 0, 1)) * Cylinder(0.5, 28, mode=Mode.PRIVATE)
    verrundung4_piece_3 = verrundung4_piece_3 - Plane(origin=(-25.5, 1.9, 2.281876588), x_dir=(1, 0, 0), z_dir=(0, 0, 1)) * Cylinder(0.5, 28, mode=Mode.PRIVATE)
    verrundung4_piece_3 = split(verrundung4_piece_3, bisect_by=Plane(origin=(-26.531548781, -1.9, 2.281876588), z_dir=(0, 1, 0)), keep=Keep.TOP, mode=Mode.PRIVATE)
    verrundung4_piece_3 = split(verrundung4_piece_3, bisect_by=Plane(origin=(-26.531548781, 1.9, 2.281876588), z_dir=(0, -1, 0)), keep=Keep.TOP, mode=Mode.PRIVATE)
    with BuildSketch(Plane(origin=(-27, 4, 1.5), x_dir=(0, 0, 1), z_dir=(0, -1, 0))) as verrundung4_piece_4_section:
        with BuildLine():
            CenterArc((VERRUNDUNG4_R, -VERRUNDUNG4_R), VERRUNDUNG4_R, 90, 90)
            Line((0, -VERRUNDUNG4_R), (0, 0))
            Line((0, 0), (VERRUNDUNG4_R, 0))
        make_face()
    verrundung4_piece_4 = extrude(amount=8, mode=Mode.PRIVATE)
    verrundung4_piece_4 = split(verrundung4_piece_4, bisect_by=Plane(origin=(-25.5, -2.974318432, 2.280258243), z_dir=(-1, 0, 0)), keep=Keep.TOP, mode=Mode.PRIVATE)
    verrundung4_piece_4 = verrundung4_piece_4 - Plane(origin=(-25.5, -1.9, 2.280258243), x_dir=(1, 0, 0), z_dir=(0, 0, 1)) * Cylinder(0.5, 28, mode=Mode.PRIVATE)
    verrundung4_piece_4 = split(verrundung4_piece_4, bisect_by=Plane(origin=(-26.529126252, -1.9, 2.280258243), z_dir=(0, -1, 0)), keep=Keep.TOP, mode=Mode.PRIVATE)
    with BuildSketch(Plane(origin=(-27, 4, 1.5), x_dir=(0, 0, 1), z_dir=(0, -1, 0))) as verrundung4_piece_5_section:
        with BuildLine():
            CenterArc((VERRUNDUNG4_R, -VERRUNDUNG4_R), VERRUNDUNG4_R, 90, 90)
            Line((0, -VERRUNDUNG4_R), (0, 0))
            Line((0, 0), (VERRUNDUNG4_R, 0))
        make_face()
    verrundung4_piece_5 = extrude(amount=8, mode=Mode.PRIVATE)
    verrundung4_piece_5 = split(verrundung4_piece_5, bisect_by=Plane(origin=(-25.5, -3.059225303, 1.565370439), z_dir=(1, 0, 0)), keep=Keep.TOP, mode=Mode.PRIVATE)
    verrundung4_piece_5 = verrundung4_piece_5 - Plane(origin=(-25.5, -1.9, 1.565370439), x_dir=(1, 0, 0), z_dir=(0, 0, 1)) * Cylinder(0.5, 28, mode=Mode.PRIVATE)
    verrundung4_piece_5 = split(verrundung4_piece_5, bisect_by=Plane(origin=(-24.970725956, -1.9, 1.565370439), z_dir=(0, -1, 0)), keep=Keep.TOP, mode=Mode.PRIVATE)
    add([verrundung4_piece_1, verrundung4_piece_2, verrundung4_piece_3, verrundung4_piece_4, verrundung4_piece_5])


solid = part.part
